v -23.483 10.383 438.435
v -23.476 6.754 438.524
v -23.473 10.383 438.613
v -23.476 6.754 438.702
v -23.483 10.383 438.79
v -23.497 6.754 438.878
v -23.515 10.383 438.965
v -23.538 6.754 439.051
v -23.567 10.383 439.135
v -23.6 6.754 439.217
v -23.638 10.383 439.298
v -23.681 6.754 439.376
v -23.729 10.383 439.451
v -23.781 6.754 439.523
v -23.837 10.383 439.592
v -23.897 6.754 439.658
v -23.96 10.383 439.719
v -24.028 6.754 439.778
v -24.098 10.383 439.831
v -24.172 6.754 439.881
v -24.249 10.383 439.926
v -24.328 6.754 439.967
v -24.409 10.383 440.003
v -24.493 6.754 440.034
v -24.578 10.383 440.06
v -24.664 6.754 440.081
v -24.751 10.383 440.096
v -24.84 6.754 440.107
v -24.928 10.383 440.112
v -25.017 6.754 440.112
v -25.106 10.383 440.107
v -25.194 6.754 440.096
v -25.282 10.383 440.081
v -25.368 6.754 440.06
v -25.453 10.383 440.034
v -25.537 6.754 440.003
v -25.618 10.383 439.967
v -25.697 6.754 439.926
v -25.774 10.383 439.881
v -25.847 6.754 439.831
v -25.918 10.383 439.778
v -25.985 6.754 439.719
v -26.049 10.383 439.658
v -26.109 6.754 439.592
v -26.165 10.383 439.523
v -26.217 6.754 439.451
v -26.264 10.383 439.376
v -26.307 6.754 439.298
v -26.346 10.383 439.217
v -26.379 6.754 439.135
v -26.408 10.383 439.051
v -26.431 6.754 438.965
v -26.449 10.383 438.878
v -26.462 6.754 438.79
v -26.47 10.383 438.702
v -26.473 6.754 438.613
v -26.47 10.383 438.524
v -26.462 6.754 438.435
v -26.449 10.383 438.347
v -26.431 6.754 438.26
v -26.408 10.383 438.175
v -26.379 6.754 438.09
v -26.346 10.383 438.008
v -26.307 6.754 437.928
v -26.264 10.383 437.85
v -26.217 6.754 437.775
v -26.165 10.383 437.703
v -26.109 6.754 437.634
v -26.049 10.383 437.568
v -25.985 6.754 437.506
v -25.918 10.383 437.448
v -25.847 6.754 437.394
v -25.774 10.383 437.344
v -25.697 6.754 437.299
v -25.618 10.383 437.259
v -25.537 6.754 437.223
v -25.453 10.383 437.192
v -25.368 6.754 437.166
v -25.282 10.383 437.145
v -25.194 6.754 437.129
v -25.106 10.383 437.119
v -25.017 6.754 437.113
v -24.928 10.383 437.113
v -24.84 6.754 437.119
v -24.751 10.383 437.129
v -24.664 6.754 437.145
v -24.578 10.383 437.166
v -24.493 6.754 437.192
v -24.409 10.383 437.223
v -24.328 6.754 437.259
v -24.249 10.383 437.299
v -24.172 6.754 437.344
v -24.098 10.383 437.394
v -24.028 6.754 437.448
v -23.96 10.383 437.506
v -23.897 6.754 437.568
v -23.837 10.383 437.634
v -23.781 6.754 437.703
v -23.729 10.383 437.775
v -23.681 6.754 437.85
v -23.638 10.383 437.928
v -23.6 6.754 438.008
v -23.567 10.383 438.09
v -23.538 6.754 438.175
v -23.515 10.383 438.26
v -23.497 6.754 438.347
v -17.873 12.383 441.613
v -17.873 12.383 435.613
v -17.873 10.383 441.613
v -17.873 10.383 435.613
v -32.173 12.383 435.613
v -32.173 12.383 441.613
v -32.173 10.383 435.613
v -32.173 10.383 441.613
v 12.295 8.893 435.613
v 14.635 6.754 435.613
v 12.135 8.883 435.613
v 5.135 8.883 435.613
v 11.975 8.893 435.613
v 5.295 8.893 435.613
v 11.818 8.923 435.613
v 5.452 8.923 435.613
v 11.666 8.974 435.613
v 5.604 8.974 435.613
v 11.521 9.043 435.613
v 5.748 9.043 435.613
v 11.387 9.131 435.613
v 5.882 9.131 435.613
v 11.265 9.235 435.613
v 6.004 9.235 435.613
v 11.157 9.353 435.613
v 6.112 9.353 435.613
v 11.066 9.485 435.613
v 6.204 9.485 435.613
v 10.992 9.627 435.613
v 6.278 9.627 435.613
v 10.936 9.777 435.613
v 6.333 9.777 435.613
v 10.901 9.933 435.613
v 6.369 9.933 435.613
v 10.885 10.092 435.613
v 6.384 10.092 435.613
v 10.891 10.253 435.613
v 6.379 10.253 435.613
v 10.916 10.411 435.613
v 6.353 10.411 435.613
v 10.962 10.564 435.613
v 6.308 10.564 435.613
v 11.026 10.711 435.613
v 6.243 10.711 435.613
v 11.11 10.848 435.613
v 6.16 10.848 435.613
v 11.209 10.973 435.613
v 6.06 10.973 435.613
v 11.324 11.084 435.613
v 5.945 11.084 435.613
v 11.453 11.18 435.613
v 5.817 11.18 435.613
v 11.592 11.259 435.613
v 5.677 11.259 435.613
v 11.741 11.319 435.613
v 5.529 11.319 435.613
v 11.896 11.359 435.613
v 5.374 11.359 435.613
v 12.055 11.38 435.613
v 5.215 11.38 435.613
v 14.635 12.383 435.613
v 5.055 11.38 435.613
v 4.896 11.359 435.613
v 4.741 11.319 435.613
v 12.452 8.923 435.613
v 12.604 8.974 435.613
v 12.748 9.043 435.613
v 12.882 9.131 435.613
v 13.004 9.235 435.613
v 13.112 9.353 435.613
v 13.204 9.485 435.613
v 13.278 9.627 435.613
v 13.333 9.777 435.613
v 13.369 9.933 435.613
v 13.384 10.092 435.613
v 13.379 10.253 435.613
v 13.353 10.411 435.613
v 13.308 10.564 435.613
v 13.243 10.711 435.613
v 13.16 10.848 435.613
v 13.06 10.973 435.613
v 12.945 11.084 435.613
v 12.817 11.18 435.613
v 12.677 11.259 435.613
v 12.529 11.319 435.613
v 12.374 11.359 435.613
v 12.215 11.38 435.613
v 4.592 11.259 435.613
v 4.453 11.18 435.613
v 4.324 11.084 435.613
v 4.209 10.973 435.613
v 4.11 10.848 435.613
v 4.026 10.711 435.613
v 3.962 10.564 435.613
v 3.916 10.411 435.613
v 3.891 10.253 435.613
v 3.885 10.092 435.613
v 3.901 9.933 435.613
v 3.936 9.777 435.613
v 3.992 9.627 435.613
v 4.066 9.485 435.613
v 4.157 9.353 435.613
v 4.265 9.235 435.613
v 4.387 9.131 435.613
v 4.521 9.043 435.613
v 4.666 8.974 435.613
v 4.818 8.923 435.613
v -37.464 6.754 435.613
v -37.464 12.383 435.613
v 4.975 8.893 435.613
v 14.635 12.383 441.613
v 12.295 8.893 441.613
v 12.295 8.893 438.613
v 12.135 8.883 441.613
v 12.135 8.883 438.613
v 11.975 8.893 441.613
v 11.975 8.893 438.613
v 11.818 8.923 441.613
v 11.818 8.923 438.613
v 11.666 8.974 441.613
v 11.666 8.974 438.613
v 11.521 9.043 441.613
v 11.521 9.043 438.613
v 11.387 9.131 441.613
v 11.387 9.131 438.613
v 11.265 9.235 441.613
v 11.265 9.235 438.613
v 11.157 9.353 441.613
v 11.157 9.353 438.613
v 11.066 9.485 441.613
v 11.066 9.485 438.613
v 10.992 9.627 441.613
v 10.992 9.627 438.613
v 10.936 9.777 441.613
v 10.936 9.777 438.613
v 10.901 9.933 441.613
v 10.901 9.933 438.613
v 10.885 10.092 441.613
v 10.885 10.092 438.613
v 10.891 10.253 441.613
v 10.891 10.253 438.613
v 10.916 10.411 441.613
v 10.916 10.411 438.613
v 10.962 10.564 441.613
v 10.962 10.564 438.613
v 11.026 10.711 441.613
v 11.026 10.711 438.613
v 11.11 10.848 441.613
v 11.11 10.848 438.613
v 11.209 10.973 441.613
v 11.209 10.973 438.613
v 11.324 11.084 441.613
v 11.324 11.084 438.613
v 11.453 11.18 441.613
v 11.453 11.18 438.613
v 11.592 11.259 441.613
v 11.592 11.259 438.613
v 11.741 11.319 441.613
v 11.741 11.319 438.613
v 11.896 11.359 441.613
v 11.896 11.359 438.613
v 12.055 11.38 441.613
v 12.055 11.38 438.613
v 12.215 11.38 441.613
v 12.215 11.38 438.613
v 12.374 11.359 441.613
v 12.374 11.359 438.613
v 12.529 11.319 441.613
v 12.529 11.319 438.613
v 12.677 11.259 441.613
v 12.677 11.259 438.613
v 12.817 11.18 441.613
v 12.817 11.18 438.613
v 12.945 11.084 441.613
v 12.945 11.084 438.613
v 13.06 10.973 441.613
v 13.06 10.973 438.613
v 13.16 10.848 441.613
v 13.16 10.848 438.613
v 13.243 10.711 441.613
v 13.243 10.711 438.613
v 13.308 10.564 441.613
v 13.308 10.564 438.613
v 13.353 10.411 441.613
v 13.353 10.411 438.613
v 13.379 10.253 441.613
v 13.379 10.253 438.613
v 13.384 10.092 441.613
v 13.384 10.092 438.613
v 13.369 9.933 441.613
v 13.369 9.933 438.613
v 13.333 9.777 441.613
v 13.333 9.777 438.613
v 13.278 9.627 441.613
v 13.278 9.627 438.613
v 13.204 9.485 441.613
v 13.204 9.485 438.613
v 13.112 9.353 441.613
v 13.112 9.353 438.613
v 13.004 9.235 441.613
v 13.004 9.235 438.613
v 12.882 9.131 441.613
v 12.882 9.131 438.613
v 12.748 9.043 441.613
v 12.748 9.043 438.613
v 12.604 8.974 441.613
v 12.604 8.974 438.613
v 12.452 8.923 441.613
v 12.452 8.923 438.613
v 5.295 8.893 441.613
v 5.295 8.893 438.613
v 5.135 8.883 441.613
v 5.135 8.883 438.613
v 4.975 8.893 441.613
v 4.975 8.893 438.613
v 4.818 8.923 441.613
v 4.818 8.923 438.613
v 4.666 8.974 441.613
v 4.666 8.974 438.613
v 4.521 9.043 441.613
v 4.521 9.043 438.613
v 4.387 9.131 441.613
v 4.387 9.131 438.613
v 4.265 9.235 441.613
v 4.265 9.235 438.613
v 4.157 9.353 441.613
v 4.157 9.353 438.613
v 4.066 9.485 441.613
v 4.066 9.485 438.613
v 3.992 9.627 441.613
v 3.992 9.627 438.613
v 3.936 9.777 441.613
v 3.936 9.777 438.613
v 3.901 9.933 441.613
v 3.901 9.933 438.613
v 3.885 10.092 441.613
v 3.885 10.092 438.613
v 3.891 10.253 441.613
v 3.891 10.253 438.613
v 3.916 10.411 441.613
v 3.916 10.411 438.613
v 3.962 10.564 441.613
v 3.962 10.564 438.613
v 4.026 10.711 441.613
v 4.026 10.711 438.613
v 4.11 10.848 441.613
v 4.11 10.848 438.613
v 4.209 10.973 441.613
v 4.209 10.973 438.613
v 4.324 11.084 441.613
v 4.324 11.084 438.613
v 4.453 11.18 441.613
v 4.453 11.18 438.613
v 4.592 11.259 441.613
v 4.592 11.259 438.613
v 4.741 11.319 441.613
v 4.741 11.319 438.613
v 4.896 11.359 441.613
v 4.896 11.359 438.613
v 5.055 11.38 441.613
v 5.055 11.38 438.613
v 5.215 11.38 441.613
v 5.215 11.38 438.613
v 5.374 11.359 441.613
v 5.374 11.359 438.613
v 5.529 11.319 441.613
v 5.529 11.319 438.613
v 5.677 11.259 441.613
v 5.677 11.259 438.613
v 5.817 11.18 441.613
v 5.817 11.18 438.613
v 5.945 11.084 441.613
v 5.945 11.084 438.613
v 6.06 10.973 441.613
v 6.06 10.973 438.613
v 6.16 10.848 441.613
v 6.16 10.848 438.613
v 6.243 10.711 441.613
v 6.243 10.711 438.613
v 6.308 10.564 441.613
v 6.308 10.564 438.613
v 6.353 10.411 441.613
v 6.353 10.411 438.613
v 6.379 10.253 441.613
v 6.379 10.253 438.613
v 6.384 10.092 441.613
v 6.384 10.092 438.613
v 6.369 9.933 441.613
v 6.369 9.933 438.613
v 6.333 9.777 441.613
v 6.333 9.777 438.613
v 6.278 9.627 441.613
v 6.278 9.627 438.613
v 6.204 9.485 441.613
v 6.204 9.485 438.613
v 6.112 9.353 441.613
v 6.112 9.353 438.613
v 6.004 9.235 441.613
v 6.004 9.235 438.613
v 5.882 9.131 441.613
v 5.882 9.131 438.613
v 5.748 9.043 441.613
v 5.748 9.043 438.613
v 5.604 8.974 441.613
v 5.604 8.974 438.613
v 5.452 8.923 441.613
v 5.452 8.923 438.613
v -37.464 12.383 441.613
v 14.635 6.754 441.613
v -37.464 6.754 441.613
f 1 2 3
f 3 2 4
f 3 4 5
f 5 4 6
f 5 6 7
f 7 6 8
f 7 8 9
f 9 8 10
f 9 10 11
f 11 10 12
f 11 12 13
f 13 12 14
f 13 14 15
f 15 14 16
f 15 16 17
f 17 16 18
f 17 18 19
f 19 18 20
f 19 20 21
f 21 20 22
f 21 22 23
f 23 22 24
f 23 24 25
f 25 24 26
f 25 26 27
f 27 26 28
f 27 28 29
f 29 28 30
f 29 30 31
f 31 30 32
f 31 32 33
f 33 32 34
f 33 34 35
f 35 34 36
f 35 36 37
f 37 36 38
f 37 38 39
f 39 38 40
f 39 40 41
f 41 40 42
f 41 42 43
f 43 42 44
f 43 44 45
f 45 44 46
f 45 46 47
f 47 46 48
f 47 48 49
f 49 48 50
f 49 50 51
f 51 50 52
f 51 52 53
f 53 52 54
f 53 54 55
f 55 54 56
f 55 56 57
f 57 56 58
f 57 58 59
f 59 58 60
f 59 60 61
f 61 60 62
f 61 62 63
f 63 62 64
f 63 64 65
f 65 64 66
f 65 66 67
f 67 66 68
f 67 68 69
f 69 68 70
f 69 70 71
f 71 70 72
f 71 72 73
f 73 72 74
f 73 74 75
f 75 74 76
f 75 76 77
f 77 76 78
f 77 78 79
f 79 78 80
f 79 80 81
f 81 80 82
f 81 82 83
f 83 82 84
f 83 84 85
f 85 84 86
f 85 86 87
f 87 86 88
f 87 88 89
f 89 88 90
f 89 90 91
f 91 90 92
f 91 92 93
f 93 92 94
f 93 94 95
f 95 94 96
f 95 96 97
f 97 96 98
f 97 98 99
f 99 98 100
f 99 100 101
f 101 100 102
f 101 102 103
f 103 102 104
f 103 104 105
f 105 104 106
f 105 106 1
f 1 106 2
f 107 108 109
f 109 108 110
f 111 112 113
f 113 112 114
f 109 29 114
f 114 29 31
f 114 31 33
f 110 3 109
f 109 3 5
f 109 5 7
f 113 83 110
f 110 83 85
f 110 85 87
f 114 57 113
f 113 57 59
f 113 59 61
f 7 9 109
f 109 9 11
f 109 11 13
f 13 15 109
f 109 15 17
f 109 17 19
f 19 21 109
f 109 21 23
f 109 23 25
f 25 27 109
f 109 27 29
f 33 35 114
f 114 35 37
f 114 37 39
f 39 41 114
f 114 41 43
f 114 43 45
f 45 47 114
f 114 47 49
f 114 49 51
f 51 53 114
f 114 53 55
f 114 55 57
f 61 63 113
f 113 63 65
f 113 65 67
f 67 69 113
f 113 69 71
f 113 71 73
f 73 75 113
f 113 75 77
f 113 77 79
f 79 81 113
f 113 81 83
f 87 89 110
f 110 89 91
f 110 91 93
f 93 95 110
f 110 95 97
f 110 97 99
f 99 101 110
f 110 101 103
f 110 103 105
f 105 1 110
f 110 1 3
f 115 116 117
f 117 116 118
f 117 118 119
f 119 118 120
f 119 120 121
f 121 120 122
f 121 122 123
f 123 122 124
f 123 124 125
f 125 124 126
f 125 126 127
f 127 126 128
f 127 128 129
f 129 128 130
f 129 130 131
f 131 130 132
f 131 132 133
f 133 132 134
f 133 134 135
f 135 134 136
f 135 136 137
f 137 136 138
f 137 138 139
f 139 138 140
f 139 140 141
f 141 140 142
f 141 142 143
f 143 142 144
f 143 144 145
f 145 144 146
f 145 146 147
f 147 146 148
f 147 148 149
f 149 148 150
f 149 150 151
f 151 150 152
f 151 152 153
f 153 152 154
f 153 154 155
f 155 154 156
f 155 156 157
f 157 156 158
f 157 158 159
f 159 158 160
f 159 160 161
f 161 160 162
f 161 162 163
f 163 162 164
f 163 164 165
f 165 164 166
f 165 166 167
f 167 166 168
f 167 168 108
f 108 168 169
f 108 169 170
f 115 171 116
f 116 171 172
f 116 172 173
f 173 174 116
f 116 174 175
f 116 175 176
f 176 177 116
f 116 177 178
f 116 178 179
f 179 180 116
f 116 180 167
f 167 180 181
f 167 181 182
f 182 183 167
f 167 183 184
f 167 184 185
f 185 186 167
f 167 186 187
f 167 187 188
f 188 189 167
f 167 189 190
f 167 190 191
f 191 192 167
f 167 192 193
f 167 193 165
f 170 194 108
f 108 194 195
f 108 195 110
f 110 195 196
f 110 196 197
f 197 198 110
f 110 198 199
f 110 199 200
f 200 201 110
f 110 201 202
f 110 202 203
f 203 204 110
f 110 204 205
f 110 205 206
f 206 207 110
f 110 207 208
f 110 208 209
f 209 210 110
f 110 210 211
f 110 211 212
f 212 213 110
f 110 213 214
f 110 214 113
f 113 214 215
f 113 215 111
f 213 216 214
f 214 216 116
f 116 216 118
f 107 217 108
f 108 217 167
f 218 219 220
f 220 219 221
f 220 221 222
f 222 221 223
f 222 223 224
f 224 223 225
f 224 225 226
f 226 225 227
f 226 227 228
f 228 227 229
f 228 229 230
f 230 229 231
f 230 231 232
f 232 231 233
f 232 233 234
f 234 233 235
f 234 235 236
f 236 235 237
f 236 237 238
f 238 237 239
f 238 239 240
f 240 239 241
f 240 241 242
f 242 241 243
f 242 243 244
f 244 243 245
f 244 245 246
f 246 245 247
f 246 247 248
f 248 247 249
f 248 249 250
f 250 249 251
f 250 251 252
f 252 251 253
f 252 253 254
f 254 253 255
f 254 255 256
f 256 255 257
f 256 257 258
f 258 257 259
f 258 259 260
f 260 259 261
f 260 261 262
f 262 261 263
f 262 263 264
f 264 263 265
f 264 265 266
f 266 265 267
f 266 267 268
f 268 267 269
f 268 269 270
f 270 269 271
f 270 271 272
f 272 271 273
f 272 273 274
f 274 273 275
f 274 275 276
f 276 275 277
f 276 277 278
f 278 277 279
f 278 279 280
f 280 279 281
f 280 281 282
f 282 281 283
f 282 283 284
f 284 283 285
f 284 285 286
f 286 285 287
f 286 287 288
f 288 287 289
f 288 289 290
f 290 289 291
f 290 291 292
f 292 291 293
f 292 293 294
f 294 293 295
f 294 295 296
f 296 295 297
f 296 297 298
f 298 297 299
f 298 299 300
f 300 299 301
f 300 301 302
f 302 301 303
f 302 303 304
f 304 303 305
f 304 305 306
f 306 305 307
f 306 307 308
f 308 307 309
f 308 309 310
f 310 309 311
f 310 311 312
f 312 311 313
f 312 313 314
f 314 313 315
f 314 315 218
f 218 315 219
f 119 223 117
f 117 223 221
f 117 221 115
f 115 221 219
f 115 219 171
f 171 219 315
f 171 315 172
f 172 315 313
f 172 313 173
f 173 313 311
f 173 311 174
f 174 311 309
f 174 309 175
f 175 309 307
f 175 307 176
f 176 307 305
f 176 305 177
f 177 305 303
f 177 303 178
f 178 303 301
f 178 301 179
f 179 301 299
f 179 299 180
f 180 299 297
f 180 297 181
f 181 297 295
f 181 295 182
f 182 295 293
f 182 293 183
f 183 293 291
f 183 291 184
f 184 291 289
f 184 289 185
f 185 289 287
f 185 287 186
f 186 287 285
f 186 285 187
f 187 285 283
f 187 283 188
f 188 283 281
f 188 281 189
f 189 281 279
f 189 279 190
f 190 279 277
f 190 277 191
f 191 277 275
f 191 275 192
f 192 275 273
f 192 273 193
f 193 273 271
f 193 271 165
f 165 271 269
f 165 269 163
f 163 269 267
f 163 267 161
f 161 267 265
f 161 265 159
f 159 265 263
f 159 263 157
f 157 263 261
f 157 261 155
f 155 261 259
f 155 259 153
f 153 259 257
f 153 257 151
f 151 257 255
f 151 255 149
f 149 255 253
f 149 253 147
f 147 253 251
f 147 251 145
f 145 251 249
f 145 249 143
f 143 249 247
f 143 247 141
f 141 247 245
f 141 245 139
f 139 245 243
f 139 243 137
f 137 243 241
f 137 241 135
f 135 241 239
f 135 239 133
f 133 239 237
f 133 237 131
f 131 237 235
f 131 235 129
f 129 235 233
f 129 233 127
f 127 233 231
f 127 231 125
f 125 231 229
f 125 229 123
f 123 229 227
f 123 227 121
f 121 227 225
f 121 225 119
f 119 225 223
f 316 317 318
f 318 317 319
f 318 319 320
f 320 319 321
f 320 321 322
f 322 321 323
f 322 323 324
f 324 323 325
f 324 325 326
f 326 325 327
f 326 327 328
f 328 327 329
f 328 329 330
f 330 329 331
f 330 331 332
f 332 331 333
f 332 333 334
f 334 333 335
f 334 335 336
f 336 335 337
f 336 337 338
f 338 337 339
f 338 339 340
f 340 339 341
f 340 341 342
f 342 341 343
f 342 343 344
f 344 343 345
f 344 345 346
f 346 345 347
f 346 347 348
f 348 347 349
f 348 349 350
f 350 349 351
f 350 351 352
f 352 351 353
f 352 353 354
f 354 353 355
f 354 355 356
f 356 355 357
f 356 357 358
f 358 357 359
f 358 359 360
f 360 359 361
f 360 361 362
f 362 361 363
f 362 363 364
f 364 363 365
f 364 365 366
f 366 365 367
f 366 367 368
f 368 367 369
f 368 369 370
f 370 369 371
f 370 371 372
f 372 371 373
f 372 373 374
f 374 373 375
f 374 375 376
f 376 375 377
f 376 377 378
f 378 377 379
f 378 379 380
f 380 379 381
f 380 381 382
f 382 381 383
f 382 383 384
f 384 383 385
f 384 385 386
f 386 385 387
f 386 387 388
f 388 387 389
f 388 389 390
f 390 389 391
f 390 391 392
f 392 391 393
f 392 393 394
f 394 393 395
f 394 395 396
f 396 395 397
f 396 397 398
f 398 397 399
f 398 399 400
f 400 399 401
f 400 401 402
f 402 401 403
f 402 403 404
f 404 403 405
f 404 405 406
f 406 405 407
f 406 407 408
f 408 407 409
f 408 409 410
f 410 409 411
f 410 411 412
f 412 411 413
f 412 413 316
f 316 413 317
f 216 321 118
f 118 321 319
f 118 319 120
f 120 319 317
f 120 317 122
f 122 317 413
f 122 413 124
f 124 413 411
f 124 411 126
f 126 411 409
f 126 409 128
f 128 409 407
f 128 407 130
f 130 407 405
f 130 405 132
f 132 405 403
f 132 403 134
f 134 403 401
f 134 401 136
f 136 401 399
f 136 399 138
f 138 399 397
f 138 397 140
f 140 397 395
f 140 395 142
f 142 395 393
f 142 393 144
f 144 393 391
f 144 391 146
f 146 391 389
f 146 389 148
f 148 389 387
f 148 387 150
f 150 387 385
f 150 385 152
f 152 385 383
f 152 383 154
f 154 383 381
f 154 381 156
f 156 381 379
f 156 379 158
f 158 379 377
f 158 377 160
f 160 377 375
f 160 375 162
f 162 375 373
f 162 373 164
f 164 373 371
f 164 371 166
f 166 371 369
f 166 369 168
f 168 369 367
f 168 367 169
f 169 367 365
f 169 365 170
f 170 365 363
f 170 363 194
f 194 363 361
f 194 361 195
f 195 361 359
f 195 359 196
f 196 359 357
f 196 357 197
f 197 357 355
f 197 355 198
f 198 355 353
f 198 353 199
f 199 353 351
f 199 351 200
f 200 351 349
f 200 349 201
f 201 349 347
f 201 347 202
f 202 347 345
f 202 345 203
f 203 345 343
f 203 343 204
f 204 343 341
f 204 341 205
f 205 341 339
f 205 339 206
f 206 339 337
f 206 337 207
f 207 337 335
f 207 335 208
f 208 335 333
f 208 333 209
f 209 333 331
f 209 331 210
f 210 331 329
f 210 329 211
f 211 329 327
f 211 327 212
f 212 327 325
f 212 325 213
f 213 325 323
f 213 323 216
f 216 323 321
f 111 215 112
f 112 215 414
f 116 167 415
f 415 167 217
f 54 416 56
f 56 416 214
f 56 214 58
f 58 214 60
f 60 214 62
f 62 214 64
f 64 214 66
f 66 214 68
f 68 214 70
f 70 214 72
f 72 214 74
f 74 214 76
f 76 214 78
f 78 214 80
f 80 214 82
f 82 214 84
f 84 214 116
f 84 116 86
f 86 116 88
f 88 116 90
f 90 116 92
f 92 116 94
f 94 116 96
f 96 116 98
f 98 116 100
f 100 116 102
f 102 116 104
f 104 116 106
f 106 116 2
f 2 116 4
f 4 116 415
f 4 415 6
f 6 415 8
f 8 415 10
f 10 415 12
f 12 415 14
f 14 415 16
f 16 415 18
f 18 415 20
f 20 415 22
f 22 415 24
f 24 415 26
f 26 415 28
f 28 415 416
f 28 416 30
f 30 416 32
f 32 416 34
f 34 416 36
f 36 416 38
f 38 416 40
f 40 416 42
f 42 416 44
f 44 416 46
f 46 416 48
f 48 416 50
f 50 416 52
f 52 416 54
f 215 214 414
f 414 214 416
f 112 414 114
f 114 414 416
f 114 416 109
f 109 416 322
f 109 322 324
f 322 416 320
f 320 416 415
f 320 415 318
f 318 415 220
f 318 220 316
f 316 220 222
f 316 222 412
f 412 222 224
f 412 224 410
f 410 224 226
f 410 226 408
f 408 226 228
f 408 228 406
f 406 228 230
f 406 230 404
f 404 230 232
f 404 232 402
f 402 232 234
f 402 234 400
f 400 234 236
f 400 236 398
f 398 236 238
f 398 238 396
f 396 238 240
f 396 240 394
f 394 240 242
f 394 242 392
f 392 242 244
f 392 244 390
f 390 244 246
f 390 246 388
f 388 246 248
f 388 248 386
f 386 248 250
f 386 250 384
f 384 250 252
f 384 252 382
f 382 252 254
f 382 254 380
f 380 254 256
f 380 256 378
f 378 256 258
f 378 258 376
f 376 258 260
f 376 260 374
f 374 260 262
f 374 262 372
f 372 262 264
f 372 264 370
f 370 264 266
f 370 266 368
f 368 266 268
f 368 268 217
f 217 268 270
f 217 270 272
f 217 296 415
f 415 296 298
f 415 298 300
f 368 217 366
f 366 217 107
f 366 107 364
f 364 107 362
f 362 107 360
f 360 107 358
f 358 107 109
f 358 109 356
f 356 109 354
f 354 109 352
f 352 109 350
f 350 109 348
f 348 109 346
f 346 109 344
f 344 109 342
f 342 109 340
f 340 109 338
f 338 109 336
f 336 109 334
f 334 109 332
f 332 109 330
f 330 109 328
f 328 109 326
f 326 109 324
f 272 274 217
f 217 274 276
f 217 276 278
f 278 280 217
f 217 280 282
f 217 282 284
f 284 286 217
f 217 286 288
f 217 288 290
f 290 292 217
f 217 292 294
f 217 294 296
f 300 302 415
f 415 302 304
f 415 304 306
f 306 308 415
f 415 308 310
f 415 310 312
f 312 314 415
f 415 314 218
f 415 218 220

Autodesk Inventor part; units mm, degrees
ref_plane "YZ Plane" through (0, 0, 0) normal (1, 0, 0) x (0, 1, 0)
ref_plane "XZ Plane" through (0, 0, 0) normal (0, 1, 0) x (-1, 0, 0)
ref_plane "XY Plane" through (0, 0, 0) normal (0, 0, 1) x (1, 0, 0)
ref_plane "РабПлоскость1" through (8.6347, 23.8825, 435.6127) normal (0, 0, 1) x (0, -1, 0)
sketch "Эскиз1" plane through (8.6347, 23.8825, 435.6127) normal (0, 0, 1) x (0, -1, 0)
  line L0 (11.5, 6) -> (11.5, -6) projected
  line L1 (15, -6) -> (11.5, -6) projected
  arc A0 (15, -6) -> (16, -5) centre (15, -5) ccw projected
  line L2 (16, -1.25) -> (16, -5) projected
  line L3 (14, -1.25) -> (16, -1.25) projected
  arc A1 (12.8, -0.05) -> (14, -1.25) centre (14, -0.05) ccw projected
  line L4 (12.8, 0.05) -> (12.8, -0.05) projected
  arc A2 (14, 1.25) -> (12.8, 0.05) centre (14, 0.05) ccw projected
  line L5 (16, 1.25) -> (14, 1.25) projected
  line L6 (16, 5) -> (16, 1.25) projected
  arc A3 (16, 5) -> (15, 6) centre (15, 5) ccw projected
  line L7 (11.5, 6) -> (15, 6) projected
  circle A4 centre (13.75, 3.5) radius 1.25 projected
  circle A5 centre (13.75, -3.5) radius 1.25 projected
  line L8 (11.5, 6) -> (17.129, 6)
  line L9 (17.129, 6) -> (17.129, -46.099)
  line L10 (17.129, -46.099) -> (11.5, -46.099)
  line L11 (11.5, -46.099) -> (11.5, 6)
  point P0 (23.8825, -8.6347)
  point P1 (15, 6)
extrude "Выдавливание1" add sketch "Эскиз1" along normal blind 6
sketch "Эскиз2" plane through (-37.4643, 12.3825, 435.6127) normal (0, 1, 0) x (1, 0, 0)
  circle A0 centre (12.4913, -3) radius 1.5
  line L0 (52.099, -6) -> (0, -6) projected
  line L1 (0, 0) -> (52.099, 0) projected
  line L2 (5.2913, 0) -> (19.5913, 0)
  line L3 (19.5913, 0) -> (19.5913, -6)
  line L4 (19.5913, -6) -> (5.2913, -6)
  line L5 (5.2913, -6) -> (5.2913, 0)
  point P0 (37.4643, 435.6127)
  point P1 (5.2913, -3)
  point P2 (19.5913, 0)
  dimension "d2" = 3
  dimension "d3" = 3
  dimension "d4" = 7.2
  dimension "d5" = 7.1
extrude "Выдавливание2" cut sketch "Эскиз2" against normal blind 2
extrude "Выдавливание3" cut sketch "Эскиз2" against normal through all contours A0
properties part number "крепеж тсрт"
